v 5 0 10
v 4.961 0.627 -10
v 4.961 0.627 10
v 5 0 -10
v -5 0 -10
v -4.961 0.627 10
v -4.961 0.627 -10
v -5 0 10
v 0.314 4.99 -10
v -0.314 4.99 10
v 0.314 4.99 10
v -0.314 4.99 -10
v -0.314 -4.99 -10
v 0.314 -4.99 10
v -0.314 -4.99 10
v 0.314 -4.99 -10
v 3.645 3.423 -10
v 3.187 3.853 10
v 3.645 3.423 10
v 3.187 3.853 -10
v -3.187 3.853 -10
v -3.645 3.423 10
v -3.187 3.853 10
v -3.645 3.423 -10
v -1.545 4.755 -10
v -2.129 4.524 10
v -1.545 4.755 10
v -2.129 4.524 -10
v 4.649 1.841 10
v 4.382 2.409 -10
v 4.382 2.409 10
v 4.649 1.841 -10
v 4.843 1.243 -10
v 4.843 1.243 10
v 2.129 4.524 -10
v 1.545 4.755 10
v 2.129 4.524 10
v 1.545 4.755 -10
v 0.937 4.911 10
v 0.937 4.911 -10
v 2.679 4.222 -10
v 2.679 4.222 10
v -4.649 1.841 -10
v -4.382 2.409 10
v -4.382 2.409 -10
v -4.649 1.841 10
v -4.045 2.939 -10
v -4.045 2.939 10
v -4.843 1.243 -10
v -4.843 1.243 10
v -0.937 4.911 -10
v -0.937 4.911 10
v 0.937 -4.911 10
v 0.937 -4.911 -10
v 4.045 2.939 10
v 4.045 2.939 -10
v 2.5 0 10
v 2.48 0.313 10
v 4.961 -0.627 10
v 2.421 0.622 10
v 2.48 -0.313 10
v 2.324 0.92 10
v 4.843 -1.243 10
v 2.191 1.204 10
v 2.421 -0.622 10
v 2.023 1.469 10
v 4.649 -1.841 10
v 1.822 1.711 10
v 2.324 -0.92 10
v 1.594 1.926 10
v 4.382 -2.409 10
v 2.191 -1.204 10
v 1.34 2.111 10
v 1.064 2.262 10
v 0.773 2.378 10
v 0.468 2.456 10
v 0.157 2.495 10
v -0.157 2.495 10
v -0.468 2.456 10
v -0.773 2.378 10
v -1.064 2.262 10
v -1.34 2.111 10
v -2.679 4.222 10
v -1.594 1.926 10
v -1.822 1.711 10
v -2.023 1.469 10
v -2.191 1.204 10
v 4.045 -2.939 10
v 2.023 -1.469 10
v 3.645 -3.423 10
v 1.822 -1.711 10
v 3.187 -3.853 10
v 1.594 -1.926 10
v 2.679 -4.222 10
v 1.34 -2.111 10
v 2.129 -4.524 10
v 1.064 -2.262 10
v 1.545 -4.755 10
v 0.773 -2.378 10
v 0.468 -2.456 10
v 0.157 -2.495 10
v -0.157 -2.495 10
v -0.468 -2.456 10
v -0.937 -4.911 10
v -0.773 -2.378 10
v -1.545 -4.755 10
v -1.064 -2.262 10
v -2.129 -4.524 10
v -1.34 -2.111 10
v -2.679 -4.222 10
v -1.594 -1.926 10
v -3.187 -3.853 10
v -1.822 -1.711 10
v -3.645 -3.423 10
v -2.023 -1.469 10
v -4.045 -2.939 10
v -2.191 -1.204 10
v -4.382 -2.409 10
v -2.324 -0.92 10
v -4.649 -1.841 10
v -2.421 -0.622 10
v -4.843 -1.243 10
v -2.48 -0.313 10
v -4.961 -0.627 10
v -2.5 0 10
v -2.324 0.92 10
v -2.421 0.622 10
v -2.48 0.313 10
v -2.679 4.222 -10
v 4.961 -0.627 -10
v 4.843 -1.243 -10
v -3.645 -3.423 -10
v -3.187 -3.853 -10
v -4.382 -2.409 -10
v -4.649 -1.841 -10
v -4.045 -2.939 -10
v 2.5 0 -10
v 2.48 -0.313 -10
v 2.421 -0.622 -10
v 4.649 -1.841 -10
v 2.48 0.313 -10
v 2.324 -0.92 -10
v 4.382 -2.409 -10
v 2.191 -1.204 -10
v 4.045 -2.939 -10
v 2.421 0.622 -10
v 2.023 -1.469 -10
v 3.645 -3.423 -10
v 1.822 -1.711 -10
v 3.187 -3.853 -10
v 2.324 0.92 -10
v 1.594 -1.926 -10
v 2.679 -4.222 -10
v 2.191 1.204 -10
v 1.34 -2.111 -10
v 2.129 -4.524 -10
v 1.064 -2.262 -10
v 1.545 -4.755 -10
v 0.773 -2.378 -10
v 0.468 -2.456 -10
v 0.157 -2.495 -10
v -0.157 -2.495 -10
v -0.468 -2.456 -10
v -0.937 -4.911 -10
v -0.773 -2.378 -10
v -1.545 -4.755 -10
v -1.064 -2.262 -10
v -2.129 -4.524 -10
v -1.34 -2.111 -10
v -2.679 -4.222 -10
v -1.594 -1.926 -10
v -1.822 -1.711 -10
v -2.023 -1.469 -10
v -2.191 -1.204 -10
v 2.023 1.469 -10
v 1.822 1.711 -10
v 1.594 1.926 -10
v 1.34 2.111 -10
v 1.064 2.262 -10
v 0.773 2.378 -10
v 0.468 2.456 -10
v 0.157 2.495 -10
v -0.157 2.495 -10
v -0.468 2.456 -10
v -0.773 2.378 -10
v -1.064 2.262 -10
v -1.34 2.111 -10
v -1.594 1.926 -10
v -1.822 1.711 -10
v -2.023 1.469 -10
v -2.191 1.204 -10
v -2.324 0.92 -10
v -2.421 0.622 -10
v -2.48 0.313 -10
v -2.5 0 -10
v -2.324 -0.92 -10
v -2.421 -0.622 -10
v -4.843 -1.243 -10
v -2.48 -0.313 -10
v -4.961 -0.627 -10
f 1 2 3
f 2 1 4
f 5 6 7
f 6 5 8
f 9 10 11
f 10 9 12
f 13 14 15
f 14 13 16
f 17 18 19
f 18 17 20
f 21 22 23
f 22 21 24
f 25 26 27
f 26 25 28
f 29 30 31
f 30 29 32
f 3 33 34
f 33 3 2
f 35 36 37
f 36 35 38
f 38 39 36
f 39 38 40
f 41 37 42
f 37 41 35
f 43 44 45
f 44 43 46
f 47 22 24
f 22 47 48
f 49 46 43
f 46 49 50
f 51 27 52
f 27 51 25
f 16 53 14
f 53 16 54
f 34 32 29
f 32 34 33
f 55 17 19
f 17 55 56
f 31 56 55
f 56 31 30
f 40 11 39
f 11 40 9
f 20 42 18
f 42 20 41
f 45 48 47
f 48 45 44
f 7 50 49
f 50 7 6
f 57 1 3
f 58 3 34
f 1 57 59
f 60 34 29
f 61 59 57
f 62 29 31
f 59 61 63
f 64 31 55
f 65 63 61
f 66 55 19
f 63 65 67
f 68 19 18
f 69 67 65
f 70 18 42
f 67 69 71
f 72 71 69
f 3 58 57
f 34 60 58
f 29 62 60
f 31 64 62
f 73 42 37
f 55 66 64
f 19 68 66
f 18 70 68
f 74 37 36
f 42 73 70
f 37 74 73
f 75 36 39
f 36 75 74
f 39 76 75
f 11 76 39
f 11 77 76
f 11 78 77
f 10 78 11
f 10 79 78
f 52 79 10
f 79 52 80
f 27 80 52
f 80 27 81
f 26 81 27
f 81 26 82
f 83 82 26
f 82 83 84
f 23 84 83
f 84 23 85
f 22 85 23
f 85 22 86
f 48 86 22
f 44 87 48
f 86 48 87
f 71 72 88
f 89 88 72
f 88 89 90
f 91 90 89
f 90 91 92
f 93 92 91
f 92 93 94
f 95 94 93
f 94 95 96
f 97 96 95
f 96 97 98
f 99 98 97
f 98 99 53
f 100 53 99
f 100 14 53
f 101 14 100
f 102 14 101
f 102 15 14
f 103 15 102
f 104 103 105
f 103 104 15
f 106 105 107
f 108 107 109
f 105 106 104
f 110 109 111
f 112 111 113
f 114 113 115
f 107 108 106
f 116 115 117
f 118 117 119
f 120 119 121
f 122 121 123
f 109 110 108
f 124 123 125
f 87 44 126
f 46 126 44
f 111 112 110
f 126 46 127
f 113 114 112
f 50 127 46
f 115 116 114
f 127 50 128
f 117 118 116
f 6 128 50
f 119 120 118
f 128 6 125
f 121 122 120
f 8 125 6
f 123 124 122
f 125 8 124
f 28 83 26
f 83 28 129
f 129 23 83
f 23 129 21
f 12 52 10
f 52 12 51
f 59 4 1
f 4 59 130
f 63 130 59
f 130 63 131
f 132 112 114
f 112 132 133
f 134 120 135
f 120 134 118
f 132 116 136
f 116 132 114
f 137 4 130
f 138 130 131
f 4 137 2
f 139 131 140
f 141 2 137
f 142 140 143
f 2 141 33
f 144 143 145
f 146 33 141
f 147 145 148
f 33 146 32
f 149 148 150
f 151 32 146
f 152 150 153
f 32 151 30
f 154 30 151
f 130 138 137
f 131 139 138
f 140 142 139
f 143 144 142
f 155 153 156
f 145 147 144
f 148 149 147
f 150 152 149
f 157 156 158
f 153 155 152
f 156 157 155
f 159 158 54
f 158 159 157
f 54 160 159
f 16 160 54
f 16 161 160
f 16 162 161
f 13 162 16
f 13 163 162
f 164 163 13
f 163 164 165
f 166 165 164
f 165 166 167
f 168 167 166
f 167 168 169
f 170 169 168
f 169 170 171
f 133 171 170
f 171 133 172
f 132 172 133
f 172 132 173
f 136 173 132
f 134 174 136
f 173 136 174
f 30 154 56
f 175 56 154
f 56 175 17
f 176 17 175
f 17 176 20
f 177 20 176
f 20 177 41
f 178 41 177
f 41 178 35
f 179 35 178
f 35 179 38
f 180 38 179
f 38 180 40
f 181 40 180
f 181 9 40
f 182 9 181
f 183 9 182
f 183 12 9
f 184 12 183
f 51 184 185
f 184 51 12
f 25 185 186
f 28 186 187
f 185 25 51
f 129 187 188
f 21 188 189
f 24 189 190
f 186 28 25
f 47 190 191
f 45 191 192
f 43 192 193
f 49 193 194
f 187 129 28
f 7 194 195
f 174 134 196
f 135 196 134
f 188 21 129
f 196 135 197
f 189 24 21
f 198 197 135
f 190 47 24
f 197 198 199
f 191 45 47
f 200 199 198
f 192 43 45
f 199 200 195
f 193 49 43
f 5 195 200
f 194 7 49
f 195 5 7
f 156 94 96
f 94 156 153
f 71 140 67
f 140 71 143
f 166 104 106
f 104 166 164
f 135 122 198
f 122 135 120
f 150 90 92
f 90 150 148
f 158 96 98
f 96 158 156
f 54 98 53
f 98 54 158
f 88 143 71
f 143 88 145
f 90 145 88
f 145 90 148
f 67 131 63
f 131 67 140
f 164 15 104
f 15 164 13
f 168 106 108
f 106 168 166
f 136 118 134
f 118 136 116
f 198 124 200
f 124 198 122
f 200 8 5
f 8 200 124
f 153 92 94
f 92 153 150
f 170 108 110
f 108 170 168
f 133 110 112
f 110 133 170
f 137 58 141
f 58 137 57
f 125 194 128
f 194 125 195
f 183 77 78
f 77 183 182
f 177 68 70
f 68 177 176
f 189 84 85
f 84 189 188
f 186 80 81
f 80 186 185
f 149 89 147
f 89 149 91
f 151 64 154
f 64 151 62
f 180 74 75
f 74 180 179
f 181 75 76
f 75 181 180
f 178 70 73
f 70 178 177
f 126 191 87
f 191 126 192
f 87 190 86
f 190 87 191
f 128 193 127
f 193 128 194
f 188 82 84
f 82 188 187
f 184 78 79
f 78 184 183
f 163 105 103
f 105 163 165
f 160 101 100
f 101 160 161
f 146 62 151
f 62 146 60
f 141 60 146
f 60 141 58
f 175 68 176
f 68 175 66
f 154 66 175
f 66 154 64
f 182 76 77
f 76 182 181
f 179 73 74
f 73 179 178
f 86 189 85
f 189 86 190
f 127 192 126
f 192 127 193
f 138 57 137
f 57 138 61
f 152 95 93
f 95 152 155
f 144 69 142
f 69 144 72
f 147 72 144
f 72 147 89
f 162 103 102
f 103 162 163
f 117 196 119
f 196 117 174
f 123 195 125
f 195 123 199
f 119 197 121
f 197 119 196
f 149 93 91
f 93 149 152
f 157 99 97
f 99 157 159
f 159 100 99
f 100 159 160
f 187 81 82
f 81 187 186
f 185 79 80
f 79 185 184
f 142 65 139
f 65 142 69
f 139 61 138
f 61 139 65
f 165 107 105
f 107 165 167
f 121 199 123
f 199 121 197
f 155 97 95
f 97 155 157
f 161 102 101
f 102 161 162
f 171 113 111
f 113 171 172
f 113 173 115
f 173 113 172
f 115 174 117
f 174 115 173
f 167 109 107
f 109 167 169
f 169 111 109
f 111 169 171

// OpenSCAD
$fn = 50;


difference() {
	union() {
		translate(v = [0, 0, -10.0000000000]) {
			cylinder(h = 20, r = 5.0000000000);
		}
	}
	union() {
		translate(v = [0, 0, -100.0000000000]) {
			cylinder(h = 200, r = 2.5000000000);
		}
	}
}
